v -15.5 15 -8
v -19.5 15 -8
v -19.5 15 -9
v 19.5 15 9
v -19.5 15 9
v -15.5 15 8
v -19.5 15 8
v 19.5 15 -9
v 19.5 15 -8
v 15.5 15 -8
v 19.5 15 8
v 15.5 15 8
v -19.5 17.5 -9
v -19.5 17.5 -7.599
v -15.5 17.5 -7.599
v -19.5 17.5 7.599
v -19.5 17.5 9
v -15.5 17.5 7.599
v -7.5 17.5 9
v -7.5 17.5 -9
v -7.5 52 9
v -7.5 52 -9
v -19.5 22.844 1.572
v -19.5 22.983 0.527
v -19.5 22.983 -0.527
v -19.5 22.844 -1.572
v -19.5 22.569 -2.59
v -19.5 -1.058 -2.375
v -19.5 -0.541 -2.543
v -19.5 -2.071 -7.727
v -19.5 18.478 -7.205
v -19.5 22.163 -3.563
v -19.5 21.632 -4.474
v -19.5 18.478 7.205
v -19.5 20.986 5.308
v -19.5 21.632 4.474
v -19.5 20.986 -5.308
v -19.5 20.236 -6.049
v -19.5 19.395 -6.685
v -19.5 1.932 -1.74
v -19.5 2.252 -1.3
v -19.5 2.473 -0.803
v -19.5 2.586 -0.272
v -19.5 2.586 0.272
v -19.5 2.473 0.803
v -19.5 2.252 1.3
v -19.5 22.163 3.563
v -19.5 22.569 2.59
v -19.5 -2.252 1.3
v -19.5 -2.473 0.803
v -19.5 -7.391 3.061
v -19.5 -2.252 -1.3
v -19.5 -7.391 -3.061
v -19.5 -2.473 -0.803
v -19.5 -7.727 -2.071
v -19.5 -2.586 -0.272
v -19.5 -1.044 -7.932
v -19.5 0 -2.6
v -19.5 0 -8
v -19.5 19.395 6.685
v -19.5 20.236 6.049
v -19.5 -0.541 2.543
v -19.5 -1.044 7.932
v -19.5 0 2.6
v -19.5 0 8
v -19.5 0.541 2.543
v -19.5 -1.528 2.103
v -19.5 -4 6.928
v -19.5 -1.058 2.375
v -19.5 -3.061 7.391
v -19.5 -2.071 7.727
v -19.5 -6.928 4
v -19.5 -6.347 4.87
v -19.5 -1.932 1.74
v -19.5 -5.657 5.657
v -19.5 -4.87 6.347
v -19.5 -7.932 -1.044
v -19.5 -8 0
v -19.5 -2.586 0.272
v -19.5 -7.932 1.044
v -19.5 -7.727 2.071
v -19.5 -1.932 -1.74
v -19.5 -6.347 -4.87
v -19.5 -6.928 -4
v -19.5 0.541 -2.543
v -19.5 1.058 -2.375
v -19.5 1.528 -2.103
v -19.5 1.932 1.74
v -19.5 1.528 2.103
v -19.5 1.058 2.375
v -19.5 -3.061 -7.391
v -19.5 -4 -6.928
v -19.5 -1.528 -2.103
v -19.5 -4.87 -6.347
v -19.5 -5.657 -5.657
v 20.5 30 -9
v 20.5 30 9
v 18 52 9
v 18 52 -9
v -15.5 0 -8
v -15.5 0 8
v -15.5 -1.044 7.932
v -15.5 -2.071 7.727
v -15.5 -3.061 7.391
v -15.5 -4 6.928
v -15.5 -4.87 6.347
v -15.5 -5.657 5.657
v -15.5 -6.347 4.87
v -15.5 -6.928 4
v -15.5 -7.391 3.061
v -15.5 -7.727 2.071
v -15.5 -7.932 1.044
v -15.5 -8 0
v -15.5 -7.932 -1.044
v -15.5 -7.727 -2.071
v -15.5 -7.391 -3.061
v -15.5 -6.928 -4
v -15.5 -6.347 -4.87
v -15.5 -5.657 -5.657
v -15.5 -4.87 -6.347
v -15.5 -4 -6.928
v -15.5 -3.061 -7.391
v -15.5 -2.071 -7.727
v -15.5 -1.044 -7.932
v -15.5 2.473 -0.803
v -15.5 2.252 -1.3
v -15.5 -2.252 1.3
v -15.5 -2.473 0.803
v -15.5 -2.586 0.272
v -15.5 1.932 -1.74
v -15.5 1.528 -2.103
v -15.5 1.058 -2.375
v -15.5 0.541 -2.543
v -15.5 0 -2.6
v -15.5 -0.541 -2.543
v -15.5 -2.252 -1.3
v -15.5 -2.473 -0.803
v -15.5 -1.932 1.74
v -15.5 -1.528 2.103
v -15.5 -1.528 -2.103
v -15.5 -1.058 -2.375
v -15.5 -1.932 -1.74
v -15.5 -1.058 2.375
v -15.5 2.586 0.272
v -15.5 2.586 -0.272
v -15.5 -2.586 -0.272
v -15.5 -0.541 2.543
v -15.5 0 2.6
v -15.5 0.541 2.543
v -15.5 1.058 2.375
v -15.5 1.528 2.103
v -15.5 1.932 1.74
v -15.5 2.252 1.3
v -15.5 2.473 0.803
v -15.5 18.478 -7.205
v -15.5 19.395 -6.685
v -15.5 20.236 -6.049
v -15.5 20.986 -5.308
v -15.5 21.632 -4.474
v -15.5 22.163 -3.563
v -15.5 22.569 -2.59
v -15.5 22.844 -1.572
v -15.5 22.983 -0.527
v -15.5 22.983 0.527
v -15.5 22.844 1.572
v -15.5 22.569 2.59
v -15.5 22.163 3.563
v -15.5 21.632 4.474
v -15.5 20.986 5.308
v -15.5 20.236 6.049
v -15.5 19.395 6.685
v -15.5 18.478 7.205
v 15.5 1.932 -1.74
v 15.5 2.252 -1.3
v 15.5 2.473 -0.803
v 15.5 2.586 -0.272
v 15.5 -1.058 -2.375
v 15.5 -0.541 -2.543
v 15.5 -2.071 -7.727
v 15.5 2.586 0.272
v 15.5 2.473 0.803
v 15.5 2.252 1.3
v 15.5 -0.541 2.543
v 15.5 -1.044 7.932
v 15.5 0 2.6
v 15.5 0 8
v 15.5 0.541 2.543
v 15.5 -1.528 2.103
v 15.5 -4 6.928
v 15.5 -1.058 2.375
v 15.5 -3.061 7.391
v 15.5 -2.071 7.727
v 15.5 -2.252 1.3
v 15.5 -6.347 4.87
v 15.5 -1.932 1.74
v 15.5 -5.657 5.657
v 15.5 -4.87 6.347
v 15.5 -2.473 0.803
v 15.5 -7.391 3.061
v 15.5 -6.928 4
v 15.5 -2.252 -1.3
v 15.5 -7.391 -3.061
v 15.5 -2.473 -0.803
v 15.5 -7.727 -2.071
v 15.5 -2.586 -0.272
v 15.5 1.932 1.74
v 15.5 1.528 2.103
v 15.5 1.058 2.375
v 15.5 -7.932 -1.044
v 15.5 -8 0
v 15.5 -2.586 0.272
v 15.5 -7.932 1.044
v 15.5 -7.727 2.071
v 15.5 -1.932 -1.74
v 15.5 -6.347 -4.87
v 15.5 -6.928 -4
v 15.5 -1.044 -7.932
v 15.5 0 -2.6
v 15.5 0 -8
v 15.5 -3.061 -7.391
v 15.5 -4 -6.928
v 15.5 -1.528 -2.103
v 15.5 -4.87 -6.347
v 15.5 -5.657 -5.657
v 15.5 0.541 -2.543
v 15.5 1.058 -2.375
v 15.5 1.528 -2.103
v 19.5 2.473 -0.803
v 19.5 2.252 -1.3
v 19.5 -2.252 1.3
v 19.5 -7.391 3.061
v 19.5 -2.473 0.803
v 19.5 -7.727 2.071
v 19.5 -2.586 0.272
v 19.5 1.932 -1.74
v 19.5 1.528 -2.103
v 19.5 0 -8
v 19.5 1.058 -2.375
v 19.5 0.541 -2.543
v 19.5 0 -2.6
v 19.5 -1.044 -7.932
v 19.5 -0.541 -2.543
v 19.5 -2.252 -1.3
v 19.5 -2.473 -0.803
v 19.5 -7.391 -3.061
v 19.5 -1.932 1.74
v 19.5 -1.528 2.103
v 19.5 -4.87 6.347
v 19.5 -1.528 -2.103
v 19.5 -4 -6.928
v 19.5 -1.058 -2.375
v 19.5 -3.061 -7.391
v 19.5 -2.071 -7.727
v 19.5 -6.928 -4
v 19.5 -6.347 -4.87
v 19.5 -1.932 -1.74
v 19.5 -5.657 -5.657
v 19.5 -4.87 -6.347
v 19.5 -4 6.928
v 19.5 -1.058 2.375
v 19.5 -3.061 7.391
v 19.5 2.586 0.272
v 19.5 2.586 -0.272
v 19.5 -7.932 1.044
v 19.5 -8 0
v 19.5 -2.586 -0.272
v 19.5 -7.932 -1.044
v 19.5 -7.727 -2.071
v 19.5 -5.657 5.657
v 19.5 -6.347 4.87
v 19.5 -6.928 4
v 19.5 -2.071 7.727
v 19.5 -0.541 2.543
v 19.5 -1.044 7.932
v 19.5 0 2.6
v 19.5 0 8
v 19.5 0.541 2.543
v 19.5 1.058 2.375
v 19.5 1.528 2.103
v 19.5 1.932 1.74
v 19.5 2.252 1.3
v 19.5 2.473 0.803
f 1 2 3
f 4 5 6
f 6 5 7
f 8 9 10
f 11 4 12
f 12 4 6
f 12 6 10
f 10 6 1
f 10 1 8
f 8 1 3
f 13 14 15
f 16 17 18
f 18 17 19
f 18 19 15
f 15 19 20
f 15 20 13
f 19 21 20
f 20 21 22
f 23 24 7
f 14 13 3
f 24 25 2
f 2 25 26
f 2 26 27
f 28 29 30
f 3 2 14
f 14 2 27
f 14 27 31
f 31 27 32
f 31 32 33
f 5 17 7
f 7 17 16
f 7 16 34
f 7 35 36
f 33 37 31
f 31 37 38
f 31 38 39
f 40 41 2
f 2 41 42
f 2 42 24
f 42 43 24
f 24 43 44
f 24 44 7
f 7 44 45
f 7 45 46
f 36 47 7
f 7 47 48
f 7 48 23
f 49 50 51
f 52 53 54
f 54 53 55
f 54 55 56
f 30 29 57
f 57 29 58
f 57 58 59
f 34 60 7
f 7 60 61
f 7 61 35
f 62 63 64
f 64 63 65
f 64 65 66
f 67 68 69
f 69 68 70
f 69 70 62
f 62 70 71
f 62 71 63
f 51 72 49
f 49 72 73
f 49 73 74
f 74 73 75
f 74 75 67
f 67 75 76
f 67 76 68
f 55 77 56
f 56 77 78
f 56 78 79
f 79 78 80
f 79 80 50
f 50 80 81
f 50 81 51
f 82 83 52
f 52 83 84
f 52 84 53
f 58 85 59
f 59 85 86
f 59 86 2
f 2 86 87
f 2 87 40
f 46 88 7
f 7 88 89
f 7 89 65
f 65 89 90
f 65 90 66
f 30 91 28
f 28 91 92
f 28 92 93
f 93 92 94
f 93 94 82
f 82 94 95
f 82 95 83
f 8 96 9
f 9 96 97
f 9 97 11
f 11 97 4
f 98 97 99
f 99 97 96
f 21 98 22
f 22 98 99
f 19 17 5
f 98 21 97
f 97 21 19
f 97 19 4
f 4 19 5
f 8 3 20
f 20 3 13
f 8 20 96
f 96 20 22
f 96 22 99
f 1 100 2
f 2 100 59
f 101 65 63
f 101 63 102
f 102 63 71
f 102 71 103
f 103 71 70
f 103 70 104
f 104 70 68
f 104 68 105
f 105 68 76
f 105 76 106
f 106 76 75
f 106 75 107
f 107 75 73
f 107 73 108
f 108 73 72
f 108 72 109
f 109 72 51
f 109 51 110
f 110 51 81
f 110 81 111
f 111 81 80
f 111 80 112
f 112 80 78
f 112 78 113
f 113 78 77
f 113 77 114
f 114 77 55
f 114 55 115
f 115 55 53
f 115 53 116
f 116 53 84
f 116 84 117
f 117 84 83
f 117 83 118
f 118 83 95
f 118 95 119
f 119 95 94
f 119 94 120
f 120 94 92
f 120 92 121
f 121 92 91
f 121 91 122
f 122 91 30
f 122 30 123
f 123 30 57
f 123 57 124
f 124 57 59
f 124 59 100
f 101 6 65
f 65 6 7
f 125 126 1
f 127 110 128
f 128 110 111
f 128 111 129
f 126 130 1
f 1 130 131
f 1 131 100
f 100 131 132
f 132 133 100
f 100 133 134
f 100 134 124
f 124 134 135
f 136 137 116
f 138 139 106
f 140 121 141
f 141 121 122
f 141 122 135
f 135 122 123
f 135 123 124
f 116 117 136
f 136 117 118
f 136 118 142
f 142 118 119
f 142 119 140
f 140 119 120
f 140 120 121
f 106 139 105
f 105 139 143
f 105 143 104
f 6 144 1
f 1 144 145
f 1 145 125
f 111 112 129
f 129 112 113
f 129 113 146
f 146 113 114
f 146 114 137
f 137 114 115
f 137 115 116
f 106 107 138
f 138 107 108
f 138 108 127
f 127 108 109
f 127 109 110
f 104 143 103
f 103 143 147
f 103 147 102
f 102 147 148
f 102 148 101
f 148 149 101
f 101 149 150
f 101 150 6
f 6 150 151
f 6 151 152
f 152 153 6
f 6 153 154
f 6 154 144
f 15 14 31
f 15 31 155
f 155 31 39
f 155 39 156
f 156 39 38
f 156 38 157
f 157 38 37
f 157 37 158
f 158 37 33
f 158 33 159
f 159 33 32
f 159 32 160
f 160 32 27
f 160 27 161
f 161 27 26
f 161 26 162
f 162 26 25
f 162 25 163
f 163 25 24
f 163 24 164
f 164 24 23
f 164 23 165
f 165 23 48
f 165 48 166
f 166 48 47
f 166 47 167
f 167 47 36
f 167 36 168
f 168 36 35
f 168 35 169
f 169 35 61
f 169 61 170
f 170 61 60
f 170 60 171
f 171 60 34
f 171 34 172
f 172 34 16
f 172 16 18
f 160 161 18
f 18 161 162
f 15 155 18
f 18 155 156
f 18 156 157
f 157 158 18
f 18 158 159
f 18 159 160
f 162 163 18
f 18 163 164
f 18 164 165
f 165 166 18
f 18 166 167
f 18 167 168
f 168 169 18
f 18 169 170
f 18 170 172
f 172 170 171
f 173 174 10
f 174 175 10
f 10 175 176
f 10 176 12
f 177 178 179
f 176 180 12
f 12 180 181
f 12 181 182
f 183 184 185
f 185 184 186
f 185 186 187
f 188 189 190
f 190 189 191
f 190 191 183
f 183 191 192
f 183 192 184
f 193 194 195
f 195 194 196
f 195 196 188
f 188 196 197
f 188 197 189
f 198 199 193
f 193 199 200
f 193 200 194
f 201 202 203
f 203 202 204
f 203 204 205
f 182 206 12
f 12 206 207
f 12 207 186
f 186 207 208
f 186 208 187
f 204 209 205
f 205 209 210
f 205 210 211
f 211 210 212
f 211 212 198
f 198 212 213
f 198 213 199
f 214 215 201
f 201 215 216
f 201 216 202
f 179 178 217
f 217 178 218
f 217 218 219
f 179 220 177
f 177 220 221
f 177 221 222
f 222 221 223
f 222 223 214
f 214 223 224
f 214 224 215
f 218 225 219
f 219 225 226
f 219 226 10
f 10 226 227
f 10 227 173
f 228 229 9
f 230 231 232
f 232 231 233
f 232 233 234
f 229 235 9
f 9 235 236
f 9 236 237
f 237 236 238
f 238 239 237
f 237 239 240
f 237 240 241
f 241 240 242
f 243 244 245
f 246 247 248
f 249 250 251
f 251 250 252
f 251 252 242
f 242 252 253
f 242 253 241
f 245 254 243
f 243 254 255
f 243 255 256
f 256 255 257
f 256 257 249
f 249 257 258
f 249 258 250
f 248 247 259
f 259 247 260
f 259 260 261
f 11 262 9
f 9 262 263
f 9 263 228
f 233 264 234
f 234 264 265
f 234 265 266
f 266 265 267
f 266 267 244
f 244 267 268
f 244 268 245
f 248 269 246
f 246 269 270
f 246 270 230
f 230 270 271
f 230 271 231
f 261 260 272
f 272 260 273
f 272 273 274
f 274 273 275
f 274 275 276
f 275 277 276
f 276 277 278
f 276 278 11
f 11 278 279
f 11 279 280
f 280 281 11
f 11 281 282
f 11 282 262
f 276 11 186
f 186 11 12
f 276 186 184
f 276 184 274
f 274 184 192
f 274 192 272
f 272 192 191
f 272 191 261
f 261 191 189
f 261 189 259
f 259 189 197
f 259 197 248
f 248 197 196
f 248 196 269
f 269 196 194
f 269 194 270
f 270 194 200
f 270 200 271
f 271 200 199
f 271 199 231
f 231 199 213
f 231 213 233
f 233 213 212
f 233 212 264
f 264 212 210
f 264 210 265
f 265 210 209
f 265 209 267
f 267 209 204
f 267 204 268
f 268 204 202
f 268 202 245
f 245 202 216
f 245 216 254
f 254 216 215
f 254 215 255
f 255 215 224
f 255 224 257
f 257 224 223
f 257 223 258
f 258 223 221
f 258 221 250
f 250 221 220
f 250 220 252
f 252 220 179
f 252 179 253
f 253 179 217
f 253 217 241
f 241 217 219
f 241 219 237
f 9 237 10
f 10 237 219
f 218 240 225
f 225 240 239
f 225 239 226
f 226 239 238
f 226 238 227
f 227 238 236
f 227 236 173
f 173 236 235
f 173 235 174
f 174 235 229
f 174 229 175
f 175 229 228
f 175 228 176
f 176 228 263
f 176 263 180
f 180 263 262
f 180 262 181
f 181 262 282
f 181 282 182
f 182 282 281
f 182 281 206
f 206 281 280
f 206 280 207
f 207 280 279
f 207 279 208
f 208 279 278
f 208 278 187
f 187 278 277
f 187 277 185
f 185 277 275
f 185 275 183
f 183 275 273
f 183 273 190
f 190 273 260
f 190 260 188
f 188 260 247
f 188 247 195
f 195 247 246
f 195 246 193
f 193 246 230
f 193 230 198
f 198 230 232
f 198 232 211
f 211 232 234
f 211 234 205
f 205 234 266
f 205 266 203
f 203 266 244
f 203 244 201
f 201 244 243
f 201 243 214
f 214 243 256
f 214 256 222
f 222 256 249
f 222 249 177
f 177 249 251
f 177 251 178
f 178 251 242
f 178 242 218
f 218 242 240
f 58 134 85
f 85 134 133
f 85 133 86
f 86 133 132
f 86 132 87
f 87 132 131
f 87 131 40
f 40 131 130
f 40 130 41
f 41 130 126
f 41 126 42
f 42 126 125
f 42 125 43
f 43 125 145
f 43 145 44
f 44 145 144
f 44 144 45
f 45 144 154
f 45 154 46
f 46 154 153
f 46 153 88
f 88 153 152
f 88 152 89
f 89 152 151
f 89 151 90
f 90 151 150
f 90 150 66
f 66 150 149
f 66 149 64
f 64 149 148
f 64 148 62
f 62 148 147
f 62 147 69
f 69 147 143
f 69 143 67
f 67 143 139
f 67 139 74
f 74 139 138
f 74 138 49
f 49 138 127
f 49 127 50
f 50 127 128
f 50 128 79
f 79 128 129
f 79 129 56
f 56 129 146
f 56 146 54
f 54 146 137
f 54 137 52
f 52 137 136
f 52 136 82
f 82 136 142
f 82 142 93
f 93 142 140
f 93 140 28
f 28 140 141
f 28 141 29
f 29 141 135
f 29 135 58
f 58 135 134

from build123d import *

# Parameters (mm, degrees)
EPIFISIS_DISTAL_DEPTH    = 18
OREJA_MEDIAL_DEPTH       = 4
OREJA_LATERAL_DEPTH      = 4
SKETCH4_R                = 2.6
AGUJERO_EJE_MUNECA_DEPTH = 1000


with BuildPart() as part:
    # Sketch1 → Epifisis_distal (new body)
    with BuildSketch(Plane.XY.offset(-9)):
        Polygon((-7.5, 52), (18, 52), (20.5, 30), (19.5, 15), (-19.5, 15), (-19.5, 17.5), (-7.5, 17.5), align=None)
    extrude(amount=EPIFISIS_DISTAL_DEPTH)

    # Sketch2 → Oreja_medial (add)
    with BuildSketch(Plane(origin=(-19.5, 0, 0), x_dir=(0, 0, -1), z_dir=(1, 0, 0))):
        with BuildLine():
            Line((8, 15), (8, 0))
            ThreePointArc((8, 0), (0, -8), (-8, 0))
            Line((-8, 0), (-8, 15))
            ThreePointArc((-8, 15), (0, 23), (8, 15))
        make_face()
    extrude(amount=OREJA_MEDIAL_DEPTH)

    # Sketch3 → Oreja_lateral (add)
    with BuildSketch(Plane(origin=(15.5, 0, 0), x_dir=(0, 0, -1), z_dir=(1, 0, 0))):
        with BuildLine():
            Line((8, 15), (8, 0))
            ThreePointArc((8, 0), (0, -8), (-8, 0))
            Line((-8, 0), (-8, 15))
            ThreePointArc((-8, 15), (0, 23), (8, 15))
        make_face()
    extrude(amount=OREJA_LATERAL_DEPTH)

    # Sketch4 → Agujero_eje_muneca (cut, symmetric)
    with BuildSketch(Plane(origin=(0, 0, 0), x_dir=(0, 0, -1), z_dir=(1, 0, 0))):
        Circle(SKETCH4_R)
    extrude(amount=AGUJERO_EJE_MUNECA_DEPTH, both=True, mode=Mode.SUBTRACT)


solid = part.part
